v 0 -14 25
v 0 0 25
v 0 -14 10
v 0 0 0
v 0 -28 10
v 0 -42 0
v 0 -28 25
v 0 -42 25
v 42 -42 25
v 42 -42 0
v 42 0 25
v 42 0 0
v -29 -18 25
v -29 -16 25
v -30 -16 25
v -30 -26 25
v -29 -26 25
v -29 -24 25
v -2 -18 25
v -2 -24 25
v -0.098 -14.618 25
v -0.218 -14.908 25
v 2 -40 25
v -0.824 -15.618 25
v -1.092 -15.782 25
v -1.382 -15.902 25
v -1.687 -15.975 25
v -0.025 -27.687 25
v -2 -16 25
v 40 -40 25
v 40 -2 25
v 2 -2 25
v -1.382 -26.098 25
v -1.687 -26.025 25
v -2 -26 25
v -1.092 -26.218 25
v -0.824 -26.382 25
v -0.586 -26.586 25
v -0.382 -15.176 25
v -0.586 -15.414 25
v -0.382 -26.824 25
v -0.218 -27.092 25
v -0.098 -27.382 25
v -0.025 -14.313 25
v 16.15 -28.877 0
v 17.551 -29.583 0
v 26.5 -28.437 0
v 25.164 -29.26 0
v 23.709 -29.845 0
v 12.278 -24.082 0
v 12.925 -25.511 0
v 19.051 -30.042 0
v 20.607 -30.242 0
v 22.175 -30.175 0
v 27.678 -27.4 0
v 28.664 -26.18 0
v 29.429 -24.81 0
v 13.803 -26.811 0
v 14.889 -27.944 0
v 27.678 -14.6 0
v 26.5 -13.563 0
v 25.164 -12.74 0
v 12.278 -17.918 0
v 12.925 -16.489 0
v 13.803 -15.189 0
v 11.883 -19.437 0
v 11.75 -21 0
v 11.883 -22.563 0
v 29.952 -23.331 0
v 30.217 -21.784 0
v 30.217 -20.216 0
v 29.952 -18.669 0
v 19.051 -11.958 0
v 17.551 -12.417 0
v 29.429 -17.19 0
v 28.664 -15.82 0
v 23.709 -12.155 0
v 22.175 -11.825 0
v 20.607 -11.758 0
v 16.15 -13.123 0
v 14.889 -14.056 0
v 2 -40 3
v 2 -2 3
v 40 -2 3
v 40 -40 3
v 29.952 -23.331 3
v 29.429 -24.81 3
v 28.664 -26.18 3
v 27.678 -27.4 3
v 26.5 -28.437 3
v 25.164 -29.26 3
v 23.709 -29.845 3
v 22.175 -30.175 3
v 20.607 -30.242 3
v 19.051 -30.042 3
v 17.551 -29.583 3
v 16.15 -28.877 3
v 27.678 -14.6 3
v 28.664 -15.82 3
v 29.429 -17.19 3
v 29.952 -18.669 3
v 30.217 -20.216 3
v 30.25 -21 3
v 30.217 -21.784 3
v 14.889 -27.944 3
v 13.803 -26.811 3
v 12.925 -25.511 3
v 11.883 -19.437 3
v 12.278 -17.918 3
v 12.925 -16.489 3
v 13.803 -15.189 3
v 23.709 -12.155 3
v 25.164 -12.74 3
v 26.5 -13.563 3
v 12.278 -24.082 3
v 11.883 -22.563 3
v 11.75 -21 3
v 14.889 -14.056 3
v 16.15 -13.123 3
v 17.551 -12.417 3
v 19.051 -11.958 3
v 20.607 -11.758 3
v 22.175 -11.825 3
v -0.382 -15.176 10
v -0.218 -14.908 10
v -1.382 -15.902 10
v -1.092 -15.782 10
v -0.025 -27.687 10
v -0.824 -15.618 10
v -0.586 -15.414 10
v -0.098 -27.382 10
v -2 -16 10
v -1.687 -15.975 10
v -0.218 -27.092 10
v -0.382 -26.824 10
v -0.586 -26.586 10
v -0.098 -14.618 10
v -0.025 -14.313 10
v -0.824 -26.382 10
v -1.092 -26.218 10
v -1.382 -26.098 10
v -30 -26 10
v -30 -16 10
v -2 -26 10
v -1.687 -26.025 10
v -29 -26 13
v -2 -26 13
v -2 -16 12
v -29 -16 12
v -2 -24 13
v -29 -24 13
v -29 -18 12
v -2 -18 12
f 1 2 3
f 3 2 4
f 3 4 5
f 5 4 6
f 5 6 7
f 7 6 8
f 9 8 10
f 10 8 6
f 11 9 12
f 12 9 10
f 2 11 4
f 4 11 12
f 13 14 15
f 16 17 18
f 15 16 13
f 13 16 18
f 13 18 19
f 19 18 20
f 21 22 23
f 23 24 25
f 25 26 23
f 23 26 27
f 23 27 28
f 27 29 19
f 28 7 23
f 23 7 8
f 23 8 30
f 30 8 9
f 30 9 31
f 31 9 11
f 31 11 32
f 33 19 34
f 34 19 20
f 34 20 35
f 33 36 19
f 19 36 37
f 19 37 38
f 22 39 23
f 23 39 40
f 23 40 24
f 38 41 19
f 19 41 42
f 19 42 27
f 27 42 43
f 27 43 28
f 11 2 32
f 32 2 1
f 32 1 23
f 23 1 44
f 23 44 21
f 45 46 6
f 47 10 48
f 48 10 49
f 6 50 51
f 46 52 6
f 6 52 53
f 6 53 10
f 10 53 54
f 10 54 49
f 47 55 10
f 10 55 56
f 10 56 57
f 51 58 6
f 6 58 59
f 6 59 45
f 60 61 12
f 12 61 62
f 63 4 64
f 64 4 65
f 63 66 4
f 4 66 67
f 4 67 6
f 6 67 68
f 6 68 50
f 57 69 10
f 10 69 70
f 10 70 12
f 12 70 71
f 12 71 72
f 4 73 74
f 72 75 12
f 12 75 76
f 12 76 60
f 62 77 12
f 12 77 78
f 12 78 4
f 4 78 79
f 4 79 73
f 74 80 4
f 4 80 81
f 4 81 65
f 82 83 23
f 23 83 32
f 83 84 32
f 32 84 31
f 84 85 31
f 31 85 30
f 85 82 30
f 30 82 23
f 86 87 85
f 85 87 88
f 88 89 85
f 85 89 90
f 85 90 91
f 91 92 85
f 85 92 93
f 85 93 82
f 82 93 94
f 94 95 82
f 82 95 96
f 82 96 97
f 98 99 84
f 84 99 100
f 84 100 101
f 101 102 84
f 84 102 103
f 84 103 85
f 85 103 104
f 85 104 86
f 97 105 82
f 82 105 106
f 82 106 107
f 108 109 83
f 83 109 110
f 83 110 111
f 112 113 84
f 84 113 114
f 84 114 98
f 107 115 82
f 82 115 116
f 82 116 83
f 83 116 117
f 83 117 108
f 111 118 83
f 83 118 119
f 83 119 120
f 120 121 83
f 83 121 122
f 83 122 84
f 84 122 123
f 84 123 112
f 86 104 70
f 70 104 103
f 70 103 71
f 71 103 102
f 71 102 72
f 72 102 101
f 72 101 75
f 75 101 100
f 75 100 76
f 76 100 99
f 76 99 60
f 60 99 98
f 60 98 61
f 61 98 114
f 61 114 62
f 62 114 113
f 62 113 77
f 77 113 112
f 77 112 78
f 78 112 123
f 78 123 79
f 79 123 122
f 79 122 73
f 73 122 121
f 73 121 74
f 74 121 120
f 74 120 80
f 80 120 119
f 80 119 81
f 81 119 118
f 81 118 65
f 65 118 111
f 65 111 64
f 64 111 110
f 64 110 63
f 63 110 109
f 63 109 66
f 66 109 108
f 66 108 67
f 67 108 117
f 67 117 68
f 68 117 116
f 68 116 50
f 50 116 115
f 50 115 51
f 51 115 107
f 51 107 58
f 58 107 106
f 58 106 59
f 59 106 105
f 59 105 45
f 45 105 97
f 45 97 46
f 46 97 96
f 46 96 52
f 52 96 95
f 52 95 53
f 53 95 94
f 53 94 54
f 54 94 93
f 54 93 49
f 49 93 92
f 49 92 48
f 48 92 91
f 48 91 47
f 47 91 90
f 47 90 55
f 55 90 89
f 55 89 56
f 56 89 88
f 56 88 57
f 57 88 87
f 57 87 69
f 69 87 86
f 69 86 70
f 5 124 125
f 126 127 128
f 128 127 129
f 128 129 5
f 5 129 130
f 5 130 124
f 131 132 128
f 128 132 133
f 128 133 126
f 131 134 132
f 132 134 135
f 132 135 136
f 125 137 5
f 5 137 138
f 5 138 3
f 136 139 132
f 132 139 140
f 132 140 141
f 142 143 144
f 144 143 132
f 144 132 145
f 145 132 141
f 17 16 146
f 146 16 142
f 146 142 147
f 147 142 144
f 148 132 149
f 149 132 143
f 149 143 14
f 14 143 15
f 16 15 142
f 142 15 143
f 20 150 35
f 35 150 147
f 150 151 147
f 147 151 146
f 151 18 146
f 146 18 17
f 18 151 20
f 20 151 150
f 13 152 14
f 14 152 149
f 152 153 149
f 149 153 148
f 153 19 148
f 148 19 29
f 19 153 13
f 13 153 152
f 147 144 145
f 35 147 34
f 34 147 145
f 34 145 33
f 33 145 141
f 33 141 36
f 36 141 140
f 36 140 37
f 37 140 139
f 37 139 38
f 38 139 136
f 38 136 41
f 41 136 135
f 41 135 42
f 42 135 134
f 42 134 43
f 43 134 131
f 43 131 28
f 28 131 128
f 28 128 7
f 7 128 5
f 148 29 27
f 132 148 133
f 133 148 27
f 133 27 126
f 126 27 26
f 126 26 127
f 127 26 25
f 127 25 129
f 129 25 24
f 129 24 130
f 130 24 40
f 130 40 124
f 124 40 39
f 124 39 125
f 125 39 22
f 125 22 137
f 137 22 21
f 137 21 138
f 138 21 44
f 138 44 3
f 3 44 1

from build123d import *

# Parameters (mm, degrees)
SKETCH_1_W          = 42
SKETCH_1_H          = 42
EXTRUDE_1_DEPTH     = 25
SKETCH_2_W          = 38
SKETCH_2_H          = 38
CUT_EXTRUDE_1_DEPTH = 22
SKETCH_3_R          = 9.25
CUT_EXTRUDE_2_DEPTH = 65.443773943
SKETCH_4_W          = 15
SKETCH_4_H          = 10
EXTRUDE_2_DEPTH     = 30
SKETCH_5_W          = 27
SKETCH_5_H          = 12
CUT_EXTRUDE_3_DEPTH = 2
SKETCH_6_W          = 27
SKETCH_6_H          = 13
CUT_EXTRUDE_4_DEPTH = 2
FILLET_1_R          = 2


with BuildPart() as part:
    # 스케치1 → 보스-돌출1 (new body)
    with BuildSketch(Plane.XY):
        with Locations((21, -21)):
            Rectangle(SKETCH_1_W, SKETCH_1_H)
    extrude(amount=EXTRUDE_1_DEPTH)

    # 스케치2 → 컷-돌출1 (cut)
    with BuildSketch(Plane.XY.offset(25)):
        with Locations((21, -21)):
            Rectangle(SKETCH_2_W, SKETCH_2_H)
    extrude(amount=-CUT_EXTRUDE_1_DEPTH, mode=Mode.SUBTRACT)

    # 스케치3 → 컷-돌출2 (cut, through all)
    with BuildSketch(Plane(origin=(0, 0, 0), x_dir=(-1, 0, 0), z_dir=(0, 0, -1))):
        with Locations((-21, -21)):
            Circle(SKETCH_3_R)
    extrude(amount=-CUT_EXTRUDE_2_DEPTH, mode=Mode.SUBTRACT)

    # 스케치4 → 보스-돌출2 (add)
    with BuildSketch(Plane.ZY):
        with Locations((17.5, -21)):
            Rectangle(SKETCH_4_W, SKETCH_4_H)
    extrude(amount=EXTRUDE_2_DEPTH)

    # 스케치5 → 컷-돌출3 (cut)
    with BuildSketch(Plane.XZ.offset(26)):
        with Locations((-15.5, 19)):
            Rectangle(SKETCH_5_W, SKETCH_5_H)
    extrude(amount=-CUT_EXTRUDE_3_DEPTH, mode=Mode.SUBTRACT)

    # 스케치6 → 컷-돌출4 (cut)
    with BuildSketch(Plane(origin=(0, -16, 0), x_dir=(1, 0, 0), z_dir=(0, 1, 0))):
        with Locations((-15.5, -18.5)):
            Rectangle(SKETCH_6_W, SKETCH_6_H)
    extrude(amount=-CUT_EXTRUDE_4_DEPTH, mode=Mode.SUBTRACT)

    # 필렛1
    fillet_1_edges = [part.edges().sort_by_distance(p)[0] for p in [
        (0, -26, 17.5),
        (0, -16, 17.5),
    ]]
    fillet(fillet_1_edges, radius=FILLET_1_R)


solid = part.part
